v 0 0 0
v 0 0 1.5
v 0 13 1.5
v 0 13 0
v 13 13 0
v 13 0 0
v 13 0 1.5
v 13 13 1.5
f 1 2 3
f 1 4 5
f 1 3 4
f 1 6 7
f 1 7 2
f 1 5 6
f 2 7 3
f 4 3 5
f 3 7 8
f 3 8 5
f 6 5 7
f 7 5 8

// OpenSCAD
/* Warning, this is a very basic generator with a lot of approximation 
input data : [LFBGA, ALB, 13x13x1.5mm, 176, , A, C04-21123A]
generated by com.zoubworld.electronics.cad.model3d.Basic
Date : Sun Feb 15 10:50:49 CET 2026
*/

//body
color("black")
translate([0,0,0])
cube([13.0,13.0,1.5], center=false);
